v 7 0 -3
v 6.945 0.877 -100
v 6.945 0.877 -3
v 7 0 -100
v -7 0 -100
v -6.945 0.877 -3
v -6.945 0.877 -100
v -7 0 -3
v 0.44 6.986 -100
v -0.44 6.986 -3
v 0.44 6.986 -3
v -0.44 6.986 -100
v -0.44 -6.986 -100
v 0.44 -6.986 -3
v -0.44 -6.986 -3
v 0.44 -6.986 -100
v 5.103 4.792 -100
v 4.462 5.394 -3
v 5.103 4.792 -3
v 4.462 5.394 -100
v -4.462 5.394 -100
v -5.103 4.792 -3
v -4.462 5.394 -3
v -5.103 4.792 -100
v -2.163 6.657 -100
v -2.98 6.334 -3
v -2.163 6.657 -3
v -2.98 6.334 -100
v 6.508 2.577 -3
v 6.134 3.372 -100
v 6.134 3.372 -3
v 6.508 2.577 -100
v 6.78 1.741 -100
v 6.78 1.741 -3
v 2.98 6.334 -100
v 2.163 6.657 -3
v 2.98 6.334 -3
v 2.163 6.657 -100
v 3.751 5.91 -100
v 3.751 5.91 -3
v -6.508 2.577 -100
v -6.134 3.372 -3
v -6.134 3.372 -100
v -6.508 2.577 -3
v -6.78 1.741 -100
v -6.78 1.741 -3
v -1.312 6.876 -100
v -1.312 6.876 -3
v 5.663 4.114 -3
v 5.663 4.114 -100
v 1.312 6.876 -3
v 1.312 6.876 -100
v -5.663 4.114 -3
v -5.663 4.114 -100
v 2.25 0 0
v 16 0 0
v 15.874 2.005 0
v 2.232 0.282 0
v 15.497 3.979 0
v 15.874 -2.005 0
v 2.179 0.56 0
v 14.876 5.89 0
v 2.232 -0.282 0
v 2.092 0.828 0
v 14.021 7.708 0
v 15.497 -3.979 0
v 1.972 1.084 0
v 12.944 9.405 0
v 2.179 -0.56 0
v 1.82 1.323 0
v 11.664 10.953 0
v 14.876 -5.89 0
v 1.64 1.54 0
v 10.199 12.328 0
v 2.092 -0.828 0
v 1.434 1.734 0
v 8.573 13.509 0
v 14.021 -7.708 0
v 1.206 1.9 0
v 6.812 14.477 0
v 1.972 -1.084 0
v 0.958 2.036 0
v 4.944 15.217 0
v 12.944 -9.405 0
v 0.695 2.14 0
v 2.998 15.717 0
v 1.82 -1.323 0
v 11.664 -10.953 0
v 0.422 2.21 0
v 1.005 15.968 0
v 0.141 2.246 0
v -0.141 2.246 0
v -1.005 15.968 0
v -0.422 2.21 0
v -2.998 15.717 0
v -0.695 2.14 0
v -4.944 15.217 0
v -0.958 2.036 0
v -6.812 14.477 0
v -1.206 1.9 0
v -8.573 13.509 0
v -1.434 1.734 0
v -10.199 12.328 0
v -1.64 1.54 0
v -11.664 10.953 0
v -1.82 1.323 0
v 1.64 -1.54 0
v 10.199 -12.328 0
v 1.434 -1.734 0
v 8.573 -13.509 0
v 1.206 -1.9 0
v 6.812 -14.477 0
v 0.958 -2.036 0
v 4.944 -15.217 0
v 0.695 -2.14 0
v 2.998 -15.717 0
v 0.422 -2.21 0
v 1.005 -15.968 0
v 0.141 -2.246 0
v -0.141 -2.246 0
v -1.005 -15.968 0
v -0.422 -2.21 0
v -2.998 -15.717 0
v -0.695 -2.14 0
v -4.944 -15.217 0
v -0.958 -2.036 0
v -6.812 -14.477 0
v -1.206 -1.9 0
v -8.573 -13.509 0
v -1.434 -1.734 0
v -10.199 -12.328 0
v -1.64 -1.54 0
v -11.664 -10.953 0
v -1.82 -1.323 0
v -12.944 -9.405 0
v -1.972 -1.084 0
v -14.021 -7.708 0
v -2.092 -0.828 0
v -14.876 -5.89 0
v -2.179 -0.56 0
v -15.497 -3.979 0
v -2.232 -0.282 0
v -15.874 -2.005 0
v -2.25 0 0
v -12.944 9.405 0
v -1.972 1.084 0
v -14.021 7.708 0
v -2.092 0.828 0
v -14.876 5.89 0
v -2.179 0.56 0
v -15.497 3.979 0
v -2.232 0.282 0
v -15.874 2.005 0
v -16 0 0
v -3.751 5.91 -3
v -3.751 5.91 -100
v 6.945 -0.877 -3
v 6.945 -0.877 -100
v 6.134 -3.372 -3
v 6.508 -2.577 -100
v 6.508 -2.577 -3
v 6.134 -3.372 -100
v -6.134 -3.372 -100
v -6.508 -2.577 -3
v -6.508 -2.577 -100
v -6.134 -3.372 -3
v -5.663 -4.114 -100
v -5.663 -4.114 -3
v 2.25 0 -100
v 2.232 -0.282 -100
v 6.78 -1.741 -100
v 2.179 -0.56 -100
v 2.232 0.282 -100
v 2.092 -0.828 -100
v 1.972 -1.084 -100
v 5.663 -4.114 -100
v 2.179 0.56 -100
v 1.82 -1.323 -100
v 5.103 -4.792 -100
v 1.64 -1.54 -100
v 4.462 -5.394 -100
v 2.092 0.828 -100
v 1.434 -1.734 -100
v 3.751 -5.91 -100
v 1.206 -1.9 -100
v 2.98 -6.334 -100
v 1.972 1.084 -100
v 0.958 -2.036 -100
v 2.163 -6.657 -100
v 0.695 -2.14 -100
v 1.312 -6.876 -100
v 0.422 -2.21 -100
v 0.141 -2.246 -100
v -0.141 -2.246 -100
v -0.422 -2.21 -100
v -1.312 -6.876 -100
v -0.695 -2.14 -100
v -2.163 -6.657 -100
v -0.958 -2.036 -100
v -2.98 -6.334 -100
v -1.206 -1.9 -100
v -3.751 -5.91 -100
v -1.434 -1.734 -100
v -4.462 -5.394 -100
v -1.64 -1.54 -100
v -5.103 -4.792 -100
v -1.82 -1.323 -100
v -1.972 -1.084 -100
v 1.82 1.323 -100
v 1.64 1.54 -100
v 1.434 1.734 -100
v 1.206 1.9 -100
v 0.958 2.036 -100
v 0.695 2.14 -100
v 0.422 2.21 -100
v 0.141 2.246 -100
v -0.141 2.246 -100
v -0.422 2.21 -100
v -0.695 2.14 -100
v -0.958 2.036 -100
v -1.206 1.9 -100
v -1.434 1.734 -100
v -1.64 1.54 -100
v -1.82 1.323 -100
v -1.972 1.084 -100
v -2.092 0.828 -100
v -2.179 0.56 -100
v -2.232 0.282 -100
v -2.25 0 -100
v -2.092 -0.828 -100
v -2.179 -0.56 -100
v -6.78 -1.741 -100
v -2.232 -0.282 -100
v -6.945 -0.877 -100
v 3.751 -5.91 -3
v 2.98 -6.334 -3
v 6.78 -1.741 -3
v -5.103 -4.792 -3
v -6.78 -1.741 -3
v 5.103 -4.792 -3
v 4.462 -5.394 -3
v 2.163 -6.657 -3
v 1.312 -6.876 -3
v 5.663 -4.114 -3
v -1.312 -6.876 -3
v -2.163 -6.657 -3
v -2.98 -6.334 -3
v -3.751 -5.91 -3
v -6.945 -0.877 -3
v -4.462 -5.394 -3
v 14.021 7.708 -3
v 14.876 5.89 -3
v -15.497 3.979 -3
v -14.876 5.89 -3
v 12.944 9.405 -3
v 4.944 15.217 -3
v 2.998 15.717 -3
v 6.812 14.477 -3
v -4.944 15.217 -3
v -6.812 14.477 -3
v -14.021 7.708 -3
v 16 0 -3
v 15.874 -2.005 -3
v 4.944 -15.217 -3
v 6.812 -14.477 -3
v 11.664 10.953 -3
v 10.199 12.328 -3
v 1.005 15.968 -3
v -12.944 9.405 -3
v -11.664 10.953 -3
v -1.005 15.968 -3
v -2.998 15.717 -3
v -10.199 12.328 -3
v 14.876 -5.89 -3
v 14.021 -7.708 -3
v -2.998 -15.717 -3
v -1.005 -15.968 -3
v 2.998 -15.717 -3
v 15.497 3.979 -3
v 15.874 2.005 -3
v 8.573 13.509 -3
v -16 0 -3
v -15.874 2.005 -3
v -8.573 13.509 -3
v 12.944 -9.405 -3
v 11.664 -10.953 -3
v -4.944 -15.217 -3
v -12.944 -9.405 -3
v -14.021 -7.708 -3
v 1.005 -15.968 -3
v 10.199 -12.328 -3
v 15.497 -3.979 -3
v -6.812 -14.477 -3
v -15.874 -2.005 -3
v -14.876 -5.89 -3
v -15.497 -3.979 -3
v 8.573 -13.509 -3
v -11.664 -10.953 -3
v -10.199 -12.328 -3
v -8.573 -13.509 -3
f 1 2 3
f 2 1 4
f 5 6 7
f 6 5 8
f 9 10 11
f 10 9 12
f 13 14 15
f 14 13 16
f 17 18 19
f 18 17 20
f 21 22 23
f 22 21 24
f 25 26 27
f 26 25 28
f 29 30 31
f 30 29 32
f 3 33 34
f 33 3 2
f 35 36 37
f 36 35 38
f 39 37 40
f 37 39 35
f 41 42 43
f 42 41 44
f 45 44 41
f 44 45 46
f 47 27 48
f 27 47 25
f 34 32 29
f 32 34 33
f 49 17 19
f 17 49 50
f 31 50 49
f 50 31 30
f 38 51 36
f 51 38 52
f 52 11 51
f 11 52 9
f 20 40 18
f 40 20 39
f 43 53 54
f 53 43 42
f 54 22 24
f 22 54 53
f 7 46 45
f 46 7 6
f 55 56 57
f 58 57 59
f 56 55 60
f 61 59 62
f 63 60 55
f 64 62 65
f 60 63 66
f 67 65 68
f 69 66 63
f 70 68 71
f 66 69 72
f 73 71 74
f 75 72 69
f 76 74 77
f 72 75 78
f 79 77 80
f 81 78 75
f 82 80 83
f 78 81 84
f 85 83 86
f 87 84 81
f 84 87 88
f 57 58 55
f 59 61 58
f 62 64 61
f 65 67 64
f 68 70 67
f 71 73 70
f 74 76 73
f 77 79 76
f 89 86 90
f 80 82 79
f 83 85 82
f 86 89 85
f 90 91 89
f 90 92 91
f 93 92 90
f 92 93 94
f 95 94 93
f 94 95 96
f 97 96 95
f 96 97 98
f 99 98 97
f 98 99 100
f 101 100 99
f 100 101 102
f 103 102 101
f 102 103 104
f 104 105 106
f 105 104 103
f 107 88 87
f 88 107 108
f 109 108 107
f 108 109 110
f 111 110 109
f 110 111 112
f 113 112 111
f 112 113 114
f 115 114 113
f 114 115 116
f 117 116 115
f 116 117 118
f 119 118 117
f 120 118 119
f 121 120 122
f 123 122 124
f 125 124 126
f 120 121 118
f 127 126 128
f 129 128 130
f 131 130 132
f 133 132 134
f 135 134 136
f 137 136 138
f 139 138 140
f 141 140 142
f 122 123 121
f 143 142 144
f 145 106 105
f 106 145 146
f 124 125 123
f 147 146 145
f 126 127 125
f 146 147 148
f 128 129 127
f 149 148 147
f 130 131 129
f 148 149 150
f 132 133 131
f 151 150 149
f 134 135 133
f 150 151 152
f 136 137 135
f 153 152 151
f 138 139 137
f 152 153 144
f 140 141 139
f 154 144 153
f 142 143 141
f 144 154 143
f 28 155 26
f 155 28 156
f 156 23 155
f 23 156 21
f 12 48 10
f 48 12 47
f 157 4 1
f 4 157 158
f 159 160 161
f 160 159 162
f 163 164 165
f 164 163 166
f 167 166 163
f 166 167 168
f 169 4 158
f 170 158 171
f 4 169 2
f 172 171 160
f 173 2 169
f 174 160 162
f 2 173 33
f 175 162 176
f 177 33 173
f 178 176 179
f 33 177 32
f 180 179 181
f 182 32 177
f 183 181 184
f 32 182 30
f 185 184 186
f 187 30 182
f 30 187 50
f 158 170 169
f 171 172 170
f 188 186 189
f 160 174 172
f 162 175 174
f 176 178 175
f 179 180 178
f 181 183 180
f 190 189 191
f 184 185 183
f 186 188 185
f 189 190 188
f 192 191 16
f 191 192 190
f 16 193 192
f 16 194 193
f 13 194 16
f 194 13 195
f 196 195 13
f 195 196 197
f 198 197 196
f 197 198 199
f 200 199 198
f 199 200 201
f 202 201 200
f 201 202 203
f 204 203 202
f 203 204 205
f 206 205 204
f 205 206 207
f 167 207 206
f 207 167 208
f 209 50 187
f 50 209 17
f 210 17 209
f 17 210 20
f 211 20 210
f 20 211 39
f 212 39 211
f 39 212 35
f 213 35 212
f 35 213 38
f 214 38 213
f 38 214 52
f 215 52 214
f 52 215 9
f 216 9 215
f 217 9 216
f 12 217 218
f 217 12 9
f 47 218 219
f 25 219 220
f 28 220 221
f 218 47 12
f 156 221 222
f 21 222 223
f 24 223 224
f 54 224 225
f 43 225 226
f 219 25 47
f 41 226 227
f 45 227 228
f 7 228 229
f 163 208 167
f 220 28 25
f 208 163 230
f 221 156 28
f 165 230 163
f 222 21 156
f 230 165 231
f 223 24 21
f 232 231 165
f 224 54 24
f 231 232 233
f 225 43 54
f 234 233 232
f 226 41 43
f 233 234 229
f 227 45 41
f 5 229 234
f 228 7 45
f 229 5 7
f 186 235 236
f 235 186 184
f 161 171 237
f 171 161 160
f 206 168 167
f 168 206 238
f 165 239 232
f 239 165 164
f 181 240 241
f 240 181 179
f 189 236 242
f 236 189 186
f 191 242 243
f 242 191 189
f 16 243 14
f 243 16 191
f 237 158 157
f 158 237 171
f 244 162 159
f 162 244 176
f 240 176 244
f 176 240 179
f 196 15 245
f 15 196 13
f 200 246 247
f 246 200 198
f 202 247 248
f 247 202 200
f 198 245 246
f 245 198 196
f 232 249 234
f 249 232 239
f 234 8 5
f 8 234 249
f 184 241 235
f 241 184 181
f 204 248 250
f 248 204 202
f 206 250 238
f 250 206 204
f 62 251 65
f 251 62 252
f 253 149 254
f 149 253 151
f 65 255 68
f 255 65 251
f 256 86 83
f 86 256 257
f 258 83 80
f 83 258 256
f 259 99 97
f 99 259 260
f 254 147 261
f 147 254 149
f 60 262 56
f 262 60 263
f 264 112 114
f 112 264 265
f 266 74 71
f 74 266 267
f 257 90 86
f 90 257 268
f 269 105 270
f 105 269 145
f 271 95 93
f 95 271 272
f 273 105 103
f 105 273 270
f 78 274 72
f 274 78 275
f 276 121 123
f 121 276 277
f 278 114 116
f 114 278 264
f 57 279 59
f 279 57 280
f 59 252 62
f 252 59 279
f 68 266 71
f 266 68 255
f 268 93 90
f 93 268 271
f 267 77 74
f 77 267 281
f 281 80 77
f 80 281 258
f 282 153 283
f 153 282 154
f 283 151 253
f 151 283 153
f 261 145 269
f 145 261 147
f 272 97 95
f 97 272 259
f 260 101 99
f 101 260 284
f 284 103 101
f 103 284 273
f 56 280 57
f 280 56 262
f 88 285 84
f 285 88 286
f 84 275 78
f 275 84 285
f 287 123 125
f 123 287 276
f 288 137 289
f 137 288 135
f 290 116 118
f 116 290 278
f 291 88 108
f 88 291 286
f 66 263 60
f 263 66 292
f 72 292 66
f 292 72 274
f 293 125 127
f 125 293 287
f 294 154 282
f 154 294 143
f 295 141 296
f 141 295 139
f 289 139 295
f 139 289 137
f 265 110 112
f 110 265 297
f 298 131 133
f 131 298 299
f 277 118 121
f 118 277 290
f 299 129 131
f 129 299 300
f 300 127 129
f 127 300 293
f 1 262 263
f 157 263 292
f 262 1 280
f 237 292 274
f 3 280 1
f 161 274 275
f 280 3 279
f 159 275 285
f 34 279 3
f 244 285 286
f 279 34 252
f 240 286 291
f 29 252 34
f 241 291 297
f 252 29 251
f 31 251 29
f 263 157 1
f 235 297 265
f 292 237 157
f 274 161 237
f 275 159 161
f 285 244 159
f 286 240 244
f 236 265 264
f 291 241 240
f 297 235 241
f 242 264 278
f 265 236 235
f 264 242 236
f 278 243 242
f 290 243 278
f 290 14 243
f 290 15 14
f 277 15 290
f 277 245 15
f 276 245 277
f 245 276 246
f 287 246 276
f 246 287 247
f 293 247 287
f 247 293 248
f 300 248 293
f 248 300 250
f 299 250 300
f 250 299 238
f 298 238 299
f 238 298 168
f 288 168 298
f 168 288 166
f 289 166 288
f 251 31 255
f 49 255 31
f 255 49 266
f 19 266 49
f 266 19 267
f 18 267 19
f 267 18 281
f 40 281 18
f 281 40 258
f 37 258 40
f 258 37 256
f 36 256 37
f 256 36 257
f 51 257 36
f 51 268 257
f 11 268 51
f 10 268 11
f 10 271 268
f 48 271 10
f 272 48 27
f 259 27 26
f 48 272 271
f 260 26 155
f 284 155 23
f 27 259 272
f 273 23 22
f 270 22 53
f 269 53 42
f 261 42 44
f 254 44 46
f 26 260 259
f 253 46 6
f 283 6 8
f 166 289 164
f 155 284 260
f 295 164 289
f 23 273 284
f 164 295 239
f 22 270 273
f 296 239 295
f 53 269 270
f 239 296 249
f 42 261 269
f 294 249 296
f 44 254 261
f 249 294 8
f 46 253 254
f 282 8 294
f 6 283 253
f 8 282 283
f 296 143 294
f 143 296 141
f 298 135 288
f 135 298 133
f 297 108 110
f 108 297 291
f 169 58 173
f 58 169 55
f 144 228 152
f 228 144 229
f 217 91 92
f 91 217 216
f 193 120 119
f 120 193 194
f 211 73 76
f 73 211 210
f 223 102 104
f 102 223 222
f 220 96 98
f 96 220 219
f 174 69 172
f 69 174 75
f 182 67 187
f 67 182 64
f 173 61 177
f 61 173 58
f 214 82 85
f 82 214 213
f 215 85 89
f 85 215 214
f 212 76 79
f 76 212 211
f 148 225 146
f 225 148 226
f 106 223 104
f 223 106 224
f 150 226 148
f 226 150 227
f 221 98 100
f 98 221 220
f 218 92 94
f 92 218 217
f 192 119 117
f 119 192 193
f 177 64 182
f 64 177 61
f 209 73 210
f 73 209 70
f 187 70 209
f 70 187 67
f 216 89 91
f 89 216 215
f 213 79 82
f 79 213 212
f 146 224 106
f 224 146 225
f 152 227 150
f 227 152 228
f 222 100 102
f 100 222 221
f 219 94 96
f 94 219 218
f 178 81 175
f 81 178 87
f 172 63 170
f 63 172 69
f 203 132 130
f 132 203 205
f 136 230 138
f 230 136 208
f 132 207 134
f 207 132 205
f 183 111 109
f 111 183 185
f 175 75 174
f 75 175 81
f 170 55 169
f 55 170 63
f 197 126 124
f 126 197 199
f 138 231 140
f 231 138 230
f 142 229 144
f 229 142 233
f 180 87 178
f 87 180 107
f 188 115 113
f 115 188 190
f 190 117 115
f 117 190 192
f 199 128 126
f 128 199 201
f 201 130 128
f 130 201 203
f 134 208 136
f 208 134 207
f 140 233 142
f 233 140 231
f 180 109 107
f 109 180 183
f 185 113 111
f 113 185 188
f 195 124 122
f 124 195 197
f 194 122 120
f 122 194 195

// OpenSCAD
$fn = 50;


difference() {
	union() {
		translate(v = [0, 0, -100.0000000000]) {
			cylinder(h = 100, r = 7.0000000000);
		}
		translate(v = [0, 0, -3.0000000000]) {
			cylinder(h = 3, r = 16.0000000000);
		}
	}
	union() {
		#translate(v = [0, 0, -100]) {
			cylinder(h = 100, r = 2.2500000000);
		}
	}
}
